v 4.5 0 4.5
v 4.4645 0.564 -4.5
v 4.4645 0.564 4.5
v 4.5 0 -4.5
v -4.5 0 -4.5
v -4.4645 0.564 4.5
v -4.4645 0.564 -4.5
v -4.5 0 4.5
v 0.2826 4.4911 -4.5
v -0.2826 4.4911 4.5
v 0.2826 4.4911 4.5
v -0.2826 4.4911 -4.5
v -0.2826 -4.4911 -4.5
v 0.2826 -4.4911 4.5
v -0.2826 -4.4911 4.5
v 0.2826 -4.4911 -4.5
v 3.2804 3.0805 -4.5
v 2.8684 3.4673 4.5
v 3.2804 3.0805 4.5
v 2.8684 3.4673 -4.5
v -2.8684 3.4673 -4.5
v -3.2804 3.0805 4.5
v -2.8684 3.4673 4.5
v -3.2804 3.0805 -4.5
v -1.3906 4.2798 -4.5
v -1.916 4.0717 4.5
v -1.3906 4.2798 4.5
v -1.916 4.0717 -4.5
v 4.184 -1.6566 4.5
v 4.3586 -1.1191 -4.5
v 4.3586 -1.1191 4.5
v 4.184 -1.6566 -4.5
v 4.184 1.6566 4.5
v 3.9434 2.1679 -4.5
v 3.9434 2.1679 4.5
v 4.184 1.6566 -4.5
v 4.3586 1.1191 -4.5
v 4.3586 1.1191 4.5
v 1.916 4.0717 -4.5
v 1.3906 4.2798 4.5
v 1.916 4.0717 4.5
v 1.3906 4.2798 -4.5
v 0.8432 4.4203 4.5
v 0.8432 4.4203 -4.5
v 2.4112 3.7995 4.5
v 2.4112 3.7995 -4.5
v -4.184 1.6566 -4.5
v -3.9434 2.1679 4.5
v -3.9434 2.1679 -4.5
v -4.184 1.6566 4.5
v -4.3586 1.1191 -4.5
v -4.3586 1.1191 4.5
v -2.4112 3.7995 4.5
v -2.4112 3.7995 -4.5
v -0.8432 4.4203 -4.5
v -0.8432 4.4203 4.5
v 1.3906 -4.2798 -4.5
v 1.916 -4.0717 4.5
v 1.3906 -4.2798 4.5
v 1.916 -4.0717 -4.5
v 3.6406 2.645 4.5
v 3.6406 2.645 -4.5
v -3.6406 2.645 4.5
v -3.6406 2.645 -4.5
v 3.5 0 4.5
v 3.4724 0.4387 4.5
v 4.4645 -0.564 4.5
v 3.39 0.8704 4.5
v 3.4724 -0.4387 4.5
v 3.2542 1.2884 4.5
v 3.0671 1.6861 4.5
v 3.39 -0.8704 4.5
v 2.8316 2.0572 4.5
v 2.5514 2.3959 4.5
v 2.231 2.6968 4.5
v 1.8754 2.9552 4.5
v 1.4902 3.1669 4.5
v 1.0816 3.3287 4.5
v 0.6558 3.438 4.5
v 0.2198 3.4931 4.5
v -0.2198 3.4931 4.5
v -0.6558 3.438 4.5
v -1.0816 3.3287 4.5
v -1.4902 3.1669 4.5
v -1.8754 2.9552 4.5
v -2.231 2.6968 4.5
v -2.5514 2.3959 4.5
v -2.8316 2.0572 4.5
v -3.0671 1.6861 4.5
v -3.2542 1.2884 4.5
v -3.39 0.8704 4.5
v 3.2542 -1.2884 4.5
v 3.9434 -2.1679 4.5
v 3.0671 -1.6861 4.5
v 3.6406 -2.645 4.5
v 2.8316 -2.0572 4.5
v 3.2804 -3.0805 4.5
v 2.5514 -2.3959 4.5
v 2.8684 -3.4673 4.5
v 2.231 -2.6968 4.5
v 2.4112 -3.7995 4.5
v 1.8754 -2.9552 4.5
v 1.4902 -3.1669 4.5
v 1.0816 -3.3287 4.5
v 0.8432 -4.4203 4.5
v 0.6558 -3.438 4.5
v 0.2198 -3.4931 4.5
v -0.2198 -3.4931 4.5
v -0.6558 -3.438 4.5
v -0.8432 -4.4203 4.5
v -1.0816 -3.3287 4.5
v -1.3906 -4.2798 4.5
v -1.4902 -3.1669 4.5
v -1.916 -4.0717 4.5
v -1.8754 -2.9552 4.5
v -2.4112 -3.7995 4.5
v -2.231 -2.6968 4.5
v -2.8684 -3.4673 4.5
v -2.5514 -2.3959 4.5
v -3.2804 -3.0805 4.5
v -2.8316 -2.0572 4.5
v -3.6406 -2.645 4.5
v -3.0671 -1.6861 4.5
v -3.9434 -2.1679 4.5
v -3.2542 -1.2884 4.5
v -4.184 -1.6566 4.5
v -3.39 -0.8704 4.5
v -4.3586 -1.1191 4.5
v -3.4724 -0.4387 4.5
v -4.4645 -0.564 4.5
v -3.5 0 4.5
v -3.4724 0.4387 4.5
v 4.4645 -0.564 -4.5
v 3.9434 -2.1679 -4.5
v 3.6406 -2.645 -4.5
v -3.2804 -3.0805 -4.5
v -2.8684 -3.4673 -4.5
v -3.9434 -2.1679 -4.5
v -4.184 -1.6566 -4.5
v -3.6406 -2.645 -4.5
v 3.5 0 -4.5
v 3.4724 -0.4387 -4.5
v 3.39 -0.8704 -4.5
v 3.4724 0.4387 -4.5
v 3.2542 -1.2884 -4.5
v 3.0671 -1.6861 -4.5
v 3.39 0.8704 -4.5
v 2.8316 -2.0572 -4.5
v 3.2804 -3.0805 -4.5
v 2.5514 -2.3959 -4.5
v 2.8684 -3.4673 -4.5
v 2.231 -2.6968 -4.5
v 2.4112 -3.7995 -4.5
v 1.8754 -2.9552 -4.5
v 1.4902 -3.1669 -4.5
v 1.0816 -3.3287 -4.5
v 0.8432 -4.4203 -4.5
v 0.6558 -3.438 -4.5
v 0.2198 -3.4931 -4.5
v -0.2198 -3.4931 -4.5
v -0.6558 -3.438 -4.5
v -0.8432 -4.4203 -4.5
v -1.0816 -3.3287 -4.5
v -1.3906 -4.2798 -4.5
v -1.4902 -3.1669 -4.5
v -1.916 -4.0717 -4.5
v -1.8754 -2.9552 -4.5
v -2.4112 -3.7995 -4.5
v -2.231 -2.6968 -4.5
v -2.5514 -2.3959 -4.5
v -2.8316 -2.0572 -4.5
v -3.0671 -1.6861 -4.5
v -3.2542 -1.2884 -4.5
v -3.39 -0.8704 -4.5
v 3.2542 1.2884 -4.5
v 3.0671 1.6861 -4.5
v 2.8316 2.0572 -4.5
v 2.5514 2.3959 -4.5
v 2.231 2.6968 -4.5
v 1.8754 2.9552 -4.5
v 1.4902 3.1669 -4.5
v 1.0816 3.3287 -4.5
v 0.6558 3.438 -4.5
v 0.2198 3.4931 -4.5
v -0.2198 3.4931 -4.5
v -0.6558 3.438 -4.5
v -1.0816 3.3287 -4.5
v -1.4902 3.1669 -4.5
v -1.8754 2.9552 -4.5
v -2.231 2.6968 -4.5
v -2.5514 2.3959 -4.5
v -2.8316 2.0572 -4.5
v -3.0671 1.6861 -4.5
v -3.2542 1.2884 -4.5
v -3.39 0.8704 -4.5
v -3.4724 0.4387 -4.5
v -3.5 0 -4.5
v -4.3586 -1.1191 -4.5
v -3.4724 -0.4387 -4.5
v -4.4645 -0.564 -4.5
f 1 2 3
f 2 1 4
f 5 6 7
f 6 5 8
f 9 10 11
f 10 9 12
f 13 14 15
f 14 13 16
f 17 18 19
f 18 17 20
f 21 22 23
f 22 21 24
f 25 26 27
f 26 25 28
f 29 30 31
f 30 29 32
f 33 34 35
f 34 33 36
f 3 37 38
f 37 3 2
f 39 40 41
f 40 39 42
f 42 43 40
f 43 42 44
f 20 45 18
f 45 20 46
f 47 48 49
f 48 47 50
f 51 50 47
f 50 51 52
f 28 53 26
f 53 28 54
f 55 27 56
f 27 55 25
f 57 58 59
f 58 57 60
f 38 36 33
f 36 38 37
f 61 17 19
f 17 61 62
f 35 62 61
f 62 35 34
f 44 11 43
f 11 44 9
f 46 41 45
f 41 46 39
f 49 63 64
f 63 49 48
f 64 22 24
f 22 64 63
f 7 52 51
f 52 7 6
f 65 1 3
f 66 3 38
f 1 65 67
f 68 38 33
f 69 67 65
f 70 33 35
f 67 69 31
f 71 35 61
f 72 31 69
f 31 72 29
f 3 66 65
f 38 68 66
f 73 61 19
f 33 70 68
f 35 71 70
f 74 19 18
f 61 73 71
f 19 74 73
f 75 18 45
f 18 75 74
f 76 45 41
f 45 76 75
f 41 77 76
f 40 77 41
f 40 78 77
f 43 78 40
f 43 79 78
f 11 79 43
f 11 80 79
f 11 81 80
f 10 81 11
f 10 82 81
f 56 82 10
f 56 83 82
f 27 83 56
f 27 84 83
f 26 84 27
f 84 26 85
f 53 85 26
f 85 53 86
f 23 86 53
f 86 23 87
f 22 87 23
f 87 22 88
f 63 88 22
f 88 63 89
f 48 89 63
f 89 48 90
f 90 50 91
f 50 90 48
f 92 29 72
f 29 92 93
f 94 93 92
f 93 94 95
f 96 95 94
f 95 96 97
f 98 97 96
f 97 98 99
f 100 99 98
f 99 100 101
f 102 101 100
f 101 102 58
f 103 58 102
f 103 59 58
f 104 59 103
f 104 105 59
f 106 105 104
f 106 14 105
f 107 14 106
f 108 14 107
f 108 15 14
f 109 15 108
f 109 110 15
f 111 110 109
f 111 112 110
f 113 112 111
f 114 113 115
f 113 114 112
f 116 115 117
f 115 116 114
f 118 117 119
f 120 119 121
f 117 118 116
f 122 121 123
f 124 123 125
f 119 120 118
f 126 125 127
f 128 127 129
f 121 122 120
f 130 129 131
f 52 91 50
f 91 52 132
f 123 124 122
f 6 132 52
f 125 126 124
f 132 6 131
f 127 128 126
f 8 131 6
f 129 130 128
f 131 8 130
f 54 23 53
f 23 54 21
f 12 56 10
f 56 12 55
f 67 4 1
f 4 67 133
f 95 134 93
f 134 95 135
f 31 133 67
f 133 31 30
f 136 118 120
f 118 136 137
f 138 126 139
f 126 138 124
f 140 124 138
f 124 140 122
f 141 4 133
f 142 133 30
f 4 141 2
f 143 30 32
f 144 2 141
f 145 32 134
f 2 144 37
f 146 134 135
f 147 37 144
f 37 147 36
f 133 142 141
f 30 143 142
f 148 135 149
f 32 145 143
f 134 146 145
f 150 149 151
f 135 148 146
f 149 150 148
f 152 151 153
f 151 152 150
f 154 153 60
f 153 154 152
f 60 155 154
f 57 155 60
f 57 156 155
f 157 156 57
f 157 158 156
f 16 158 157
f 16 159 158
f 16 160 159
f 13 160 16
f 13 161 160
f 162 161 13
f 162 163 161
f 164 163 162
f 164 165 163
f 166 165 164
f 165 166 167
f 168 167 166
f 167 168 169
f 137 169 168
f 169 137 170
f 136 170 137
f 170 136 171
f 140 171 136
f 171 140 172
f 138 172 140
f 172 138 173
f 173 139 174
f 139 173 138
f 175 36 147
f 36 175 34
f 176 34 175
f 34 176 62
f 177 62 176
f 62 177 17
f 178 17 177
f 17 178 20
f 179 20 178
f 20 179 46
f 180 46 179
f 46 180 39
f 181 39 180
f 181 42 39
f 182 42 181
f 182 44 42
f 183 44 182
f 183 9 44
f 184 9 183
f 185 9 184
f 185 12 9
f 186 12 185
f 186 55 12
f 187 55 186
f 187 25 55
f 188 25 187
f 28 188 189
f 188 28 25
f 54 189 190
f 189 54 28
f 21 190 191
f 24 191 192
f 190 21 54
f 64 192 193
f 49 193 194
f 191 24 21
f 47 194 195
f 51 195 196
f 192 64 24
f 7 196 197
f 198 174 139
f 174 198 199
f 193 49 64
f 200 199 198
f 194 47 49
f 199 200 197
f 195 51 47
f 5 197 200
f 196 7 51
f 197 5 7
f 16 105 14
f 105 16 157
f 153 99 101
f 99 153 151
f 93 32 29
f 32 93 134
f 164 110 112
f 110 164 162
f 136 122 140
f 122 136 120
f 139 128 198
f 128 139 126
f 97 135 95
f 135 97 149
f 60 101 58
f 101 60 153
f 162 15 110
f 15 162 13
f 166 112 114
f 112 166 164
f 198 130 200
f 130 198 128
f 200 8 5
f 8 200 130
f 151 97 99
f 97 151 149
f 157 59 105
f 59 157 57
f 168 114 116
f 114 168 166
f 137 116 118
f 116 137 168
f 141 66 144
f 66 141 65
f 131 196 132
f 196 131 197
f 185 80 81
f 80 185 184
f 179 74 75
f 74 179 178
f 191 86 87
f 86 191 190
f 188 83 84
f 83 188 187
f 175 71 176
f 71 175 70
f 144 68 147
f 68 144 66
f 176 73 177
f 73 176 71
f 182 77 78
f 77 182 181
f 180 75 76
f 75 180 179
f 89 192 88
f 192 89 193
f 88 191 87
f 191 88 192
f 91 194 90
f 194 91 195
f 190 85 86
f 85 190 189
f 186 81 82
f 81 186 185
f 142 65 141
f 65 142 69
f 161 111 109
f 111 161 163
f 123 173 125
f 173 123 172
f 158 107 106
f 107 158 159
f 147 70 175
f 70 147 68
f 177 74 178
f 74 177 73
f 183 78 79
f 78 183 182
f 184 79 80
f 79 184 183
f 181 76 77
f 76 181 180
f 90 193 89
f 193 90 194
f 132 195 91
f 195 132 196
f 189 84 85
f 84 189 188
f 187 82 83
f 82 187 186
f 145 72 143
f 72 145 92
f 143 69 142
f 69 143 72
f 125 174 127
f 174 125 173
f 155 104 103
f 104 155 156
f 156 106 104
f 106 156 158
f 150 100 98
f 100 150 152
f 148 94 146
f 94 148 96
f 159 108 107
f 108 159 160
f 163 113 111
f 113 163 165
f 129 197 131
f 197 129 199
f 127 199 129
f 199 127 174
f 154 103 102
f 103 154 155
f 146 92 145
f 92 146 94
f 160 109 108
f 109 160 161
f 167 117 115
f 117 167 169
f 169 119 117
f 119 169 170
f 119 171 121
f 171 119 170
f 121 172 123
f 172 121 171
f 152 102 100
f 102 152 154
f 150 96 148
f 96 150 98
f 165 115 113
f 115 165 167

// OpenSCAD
$fn = 50;


difference() {
	union() {
		translate(v = [0, 0, -4.5000000000]) {
			cylinder(h = 9, r = 4.5000000000);
		}
	}
	union() {
		translate(v = [0, 0, -100.0000000000]) {
			cylinder(h = 200, r = 3.5000000000);
		}
	}
}
